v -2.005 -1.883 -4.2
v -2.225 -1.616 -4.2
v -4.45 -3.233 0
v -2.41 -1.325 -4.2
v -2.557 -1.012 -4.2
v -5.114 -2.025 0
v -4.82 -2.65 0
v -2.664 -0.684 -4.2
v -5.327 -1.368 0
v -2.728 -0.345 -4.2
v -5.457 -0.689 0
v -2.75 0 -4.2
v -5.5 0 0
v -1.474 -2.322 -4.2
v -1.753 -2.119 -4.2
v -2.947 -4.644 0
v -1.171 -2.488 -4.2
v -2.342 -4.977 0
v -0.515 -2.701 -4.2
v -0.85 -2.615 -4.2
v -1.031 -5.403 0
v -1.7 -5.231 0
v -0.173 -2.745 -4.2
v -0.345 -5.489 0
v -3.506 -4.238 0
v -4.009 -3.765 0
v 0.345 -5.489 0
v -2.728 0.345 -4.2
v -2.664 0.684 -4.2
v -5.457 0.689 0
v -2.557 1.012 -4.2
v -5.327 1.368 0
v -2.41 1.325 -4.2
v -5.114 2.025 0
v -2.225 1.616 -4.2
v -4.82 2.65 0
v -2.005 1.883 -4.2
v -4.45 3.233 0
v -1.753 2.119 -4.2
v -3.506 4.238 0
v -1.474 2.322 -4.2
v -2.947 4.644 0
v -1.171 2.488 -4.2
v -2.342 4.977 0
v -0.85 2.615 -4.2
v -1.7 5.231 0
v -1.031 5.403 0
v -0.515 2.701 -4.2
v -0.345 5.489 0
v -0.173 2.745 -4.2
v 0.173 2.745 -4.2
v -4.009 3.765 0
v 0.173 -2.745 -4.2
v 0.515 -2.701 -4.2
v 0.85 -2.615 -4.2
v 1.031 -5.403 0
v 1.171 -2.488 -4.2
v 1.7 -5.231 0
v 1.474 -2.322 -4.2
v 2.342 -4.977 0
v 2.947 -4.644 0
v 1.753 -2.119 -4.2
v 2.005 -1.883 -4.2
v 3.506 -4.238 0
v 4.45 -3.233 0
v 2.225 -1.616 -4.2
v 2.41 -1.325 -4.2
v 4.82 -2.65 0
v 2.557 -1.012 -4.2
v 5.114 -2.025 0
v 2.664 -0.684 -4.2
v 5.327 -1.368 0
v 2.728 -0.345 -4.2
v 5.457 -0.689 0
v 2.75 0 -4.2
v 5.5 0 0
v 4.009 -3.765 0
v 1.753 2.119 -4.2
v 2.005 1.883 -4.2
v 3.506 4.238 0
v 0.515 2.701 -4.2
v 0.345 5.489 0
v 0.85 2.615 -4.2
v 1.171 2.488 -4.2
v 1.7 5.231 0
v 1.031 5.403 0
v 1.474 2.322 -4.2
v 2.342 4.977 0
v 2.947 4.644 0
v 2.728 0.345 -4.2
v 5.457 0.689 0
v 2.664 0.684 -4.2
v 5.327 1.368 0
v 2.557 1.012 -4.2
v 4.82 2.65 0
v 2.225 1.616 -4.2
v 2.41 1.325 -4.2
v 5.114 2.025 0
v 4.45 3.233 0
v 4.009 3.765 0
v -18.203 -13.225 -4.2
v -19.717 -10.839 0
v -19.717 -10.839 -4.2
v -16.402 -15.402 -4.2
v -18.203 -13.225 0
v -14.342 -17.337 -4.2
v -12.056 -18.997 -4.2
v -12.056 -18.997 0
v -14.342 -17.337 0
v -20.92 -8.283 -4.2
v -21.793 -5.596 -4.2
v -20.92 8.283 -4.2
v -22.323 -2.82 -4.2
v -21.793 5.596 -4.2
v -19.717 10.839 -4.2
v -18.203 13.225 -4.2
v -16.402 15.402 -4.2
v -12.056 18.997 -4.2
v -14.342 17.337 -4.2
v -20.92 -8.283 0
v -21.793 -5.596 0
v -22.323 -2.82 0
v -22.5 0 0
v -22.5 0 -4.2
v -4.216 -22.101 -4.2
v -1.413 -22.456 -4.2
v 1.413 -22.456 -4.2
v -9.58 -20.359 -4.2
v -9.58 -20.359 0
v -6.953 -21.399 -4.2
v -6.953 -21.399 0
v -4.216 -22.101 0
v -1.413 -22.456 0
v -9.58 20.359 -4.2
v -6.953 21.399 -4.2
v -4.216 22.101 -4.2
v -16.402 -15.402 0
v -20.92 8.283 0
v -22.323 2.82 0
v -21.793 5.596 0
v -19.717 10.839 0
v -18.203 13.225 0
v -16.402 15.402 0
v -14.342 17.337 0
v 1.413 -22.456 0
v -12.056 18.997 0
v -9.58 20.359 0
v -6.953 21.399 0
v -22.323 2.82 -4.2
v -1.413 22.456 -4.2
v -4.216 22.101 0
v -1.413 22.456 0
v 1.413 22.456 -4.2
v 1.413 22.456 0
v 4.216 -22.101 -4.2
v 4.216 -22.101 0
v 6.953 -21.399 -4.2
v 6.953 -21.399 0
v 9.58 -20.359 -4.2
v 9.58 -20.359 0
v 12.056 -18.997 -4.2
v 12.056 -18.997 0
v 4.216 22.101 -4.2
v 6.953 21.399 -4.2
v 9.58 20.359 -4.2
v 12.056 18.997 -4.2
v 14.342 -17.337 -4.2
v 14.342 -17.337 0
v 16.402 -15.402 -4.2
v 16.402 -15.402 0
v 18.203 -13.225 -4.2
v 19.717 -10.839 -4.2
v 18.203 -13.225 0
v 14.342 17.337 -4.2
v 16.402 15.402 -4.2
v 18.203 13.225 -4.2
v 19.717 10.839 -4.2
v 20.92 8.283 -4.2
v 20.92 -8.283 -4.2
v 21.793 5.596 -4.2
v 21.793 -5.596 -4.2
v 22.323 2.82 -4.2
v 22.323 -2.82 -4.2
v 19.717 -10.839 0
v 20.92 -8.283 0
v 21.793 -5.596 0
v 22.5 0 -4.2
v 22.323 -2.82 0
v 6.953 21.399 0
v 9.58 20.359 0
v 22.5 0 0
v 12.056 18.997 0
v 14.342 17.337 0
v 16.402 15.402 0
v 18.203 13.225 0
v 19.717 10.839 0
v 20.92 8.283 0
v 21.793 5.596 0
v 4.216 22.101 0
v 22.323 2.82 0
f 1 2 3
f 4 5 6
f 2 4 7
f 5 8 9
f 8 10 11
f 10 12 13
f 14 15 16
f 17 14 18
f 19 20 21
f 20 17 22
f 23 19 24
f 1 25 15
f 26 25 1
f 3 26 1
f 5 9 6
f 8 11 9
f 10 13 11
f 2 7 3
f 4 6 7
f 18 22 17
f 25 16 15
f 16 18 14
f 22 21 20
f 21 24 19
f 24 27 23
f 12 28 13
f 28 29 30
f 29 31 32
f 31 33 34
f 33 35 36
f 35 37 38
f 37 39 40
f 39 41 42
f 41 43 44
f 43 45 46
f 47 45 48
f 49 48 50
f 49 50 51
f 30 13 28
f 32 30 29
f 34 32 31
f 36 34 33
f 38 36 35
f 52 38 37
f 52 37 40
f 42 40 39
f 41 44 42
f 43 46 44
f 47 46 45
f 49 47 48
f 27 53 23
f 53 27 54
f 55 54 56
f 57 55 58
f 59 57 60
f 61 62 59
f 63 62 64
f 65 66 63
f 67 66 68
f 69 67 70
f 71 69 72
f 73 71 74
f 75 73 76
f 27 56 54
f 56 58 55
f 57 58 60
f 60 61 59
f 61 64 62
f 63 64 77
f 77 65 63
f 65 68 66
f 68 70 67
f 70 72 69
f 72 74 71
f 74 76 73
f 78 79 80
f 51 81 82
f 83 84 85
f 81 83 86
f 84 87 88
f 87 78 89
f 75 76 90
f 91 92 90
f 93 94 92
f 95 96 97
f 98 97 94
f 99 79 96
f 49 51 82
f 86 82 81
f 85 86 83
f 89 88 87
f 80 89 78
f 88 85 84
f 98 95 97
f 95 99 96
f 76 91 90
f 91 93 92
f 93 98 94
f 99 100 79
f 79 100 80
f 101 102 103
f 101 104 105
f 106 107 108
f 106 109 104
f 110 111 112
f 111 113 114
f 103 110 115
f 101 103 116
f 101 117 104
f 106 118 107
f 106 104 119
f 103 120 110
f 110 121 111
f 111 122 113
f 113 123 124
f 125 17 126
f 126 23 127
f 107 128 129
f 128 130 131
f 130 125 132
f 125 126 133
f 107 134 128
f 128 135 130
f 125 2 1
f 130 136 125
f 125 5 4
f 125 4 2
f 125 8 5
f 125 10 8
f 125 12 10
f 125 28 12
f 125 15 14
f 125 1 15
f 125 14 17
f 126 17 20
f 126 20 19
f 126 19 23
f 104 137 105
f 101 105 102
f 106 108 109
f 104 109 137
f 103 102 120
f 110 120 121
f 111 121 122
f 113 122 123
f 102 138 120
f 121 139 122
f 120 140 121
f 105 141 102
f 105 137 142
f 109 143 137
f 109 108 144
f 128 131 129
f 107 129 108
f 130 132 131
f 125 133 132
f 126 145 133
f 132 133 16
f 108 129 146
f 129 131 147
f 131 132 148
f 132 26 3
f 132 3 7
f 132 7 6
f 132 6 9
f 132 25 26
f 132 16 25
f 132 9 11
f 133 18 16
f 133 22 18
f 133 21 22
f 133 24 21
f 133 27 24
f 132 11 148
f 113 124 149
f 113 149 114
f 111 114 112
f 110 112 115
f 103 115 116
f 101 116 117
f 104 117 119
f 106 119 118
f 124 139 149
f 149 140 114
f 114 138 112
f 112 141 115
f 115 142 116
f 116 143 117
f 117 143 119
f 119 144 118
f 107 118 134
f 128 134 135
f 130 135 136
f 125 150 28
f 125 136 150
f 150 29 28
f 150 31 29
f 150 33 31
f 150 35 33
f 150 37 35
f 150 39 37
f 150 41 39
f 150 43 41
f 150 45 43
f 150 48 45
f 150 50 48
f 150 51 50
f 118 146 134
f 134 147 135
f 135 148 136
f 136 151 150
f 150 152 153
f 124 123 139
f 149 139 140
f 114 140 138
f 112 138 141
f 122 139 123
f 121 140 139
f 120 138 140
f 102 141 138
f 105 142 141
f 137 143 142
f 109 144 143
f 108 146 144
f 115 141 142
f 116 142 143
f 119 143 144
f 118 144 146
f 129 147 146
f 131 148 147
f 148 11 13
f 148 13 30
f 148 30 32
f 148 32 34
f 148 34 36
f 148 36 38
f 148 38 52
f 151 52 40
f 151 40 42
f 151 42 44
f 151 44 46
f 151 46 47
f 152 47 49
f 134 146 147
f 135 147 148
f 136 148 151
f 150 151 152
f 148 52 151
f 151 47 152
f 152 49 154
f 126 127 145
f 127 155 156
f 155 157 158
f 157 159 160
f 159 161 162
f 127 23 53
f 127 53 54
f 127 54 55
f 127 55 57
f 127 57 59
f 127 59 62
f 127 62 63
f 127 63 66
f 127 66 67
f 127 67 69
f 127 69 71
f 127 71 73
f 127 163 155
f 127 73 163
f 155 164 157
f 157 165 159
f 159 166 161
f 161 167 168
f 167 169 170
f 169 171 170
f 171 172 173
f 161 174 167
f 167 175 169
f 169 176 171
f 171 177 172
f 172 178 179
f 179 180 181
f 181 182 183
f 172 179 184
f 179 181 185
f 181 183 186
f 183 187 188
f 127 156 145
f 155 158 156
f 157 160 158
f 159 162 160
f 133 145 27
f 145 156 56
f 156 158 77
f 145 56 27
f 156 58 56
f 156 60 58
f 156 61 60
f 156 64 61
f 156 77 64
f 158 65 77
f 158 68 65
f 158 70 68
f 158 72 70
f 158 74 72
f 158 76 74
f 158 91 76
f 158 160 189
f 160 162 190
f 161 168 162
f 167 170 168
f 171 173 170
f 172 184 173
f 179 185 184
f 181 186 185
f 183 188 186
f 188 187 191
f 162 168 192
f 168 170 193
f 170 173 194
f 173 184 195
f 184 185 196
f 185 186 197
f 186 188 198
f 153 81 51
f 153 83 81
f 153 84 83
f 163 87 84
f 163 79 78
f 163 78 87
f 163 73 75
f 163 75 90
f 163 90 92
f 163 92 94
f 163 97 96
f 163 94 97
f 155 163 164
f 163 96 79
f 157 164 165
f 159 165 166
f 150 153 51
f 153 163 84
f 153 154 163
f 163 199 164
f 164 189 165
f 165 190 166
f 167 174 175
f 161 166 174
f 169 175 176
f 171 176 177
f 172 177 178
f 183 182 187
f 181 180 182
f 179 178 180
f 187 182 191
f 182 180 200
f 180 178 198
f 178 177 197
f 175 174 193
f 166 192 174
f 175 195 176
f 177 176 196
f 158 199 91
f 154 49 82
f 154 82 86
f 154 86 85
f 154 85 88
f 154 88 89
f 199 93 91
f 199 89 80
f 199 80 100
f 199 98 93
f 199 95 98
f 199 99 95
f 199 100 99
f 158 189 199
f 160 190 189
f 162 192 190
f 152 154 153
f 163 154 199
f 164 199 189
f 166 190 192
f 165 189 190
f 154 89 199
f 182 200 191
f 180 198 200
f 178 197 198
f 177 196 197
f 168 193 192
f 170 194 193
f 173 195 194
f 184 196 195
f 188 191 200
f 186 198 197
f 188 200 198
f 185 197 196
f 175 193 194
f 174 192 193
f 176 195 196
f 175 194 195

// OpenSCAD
$fn = 50;

difference() {
	union() {
		translate(v = [0, 0, -4.2]) {
			cylinder(h = 4.2, r = 22.5);
		}
	}
	union() {
		translate(v = [0, 0, 0]) {
			rotate(a = [0, 0, 0]) {
				difference() {
					union() {
						translate(v = [0, 0, -7.2]) {
							cylinder(h = 7.2, r = 2.25);
						}
						translate(v = [0, 0, -4.2]) {
							cylinder(h = 4.2, r1 = 2.75, r2 = 5.5);
						}
						translate(v = [0, 0, -7.2]) {
							cylinder(h = 7.2, r = 2.75);
						}
						translate(v = [0, 0, -7.2]) {
							cylinder(h = 7.2, r = 2.25);
						}
					}
					union();
				}
			}
		}
	}
}
